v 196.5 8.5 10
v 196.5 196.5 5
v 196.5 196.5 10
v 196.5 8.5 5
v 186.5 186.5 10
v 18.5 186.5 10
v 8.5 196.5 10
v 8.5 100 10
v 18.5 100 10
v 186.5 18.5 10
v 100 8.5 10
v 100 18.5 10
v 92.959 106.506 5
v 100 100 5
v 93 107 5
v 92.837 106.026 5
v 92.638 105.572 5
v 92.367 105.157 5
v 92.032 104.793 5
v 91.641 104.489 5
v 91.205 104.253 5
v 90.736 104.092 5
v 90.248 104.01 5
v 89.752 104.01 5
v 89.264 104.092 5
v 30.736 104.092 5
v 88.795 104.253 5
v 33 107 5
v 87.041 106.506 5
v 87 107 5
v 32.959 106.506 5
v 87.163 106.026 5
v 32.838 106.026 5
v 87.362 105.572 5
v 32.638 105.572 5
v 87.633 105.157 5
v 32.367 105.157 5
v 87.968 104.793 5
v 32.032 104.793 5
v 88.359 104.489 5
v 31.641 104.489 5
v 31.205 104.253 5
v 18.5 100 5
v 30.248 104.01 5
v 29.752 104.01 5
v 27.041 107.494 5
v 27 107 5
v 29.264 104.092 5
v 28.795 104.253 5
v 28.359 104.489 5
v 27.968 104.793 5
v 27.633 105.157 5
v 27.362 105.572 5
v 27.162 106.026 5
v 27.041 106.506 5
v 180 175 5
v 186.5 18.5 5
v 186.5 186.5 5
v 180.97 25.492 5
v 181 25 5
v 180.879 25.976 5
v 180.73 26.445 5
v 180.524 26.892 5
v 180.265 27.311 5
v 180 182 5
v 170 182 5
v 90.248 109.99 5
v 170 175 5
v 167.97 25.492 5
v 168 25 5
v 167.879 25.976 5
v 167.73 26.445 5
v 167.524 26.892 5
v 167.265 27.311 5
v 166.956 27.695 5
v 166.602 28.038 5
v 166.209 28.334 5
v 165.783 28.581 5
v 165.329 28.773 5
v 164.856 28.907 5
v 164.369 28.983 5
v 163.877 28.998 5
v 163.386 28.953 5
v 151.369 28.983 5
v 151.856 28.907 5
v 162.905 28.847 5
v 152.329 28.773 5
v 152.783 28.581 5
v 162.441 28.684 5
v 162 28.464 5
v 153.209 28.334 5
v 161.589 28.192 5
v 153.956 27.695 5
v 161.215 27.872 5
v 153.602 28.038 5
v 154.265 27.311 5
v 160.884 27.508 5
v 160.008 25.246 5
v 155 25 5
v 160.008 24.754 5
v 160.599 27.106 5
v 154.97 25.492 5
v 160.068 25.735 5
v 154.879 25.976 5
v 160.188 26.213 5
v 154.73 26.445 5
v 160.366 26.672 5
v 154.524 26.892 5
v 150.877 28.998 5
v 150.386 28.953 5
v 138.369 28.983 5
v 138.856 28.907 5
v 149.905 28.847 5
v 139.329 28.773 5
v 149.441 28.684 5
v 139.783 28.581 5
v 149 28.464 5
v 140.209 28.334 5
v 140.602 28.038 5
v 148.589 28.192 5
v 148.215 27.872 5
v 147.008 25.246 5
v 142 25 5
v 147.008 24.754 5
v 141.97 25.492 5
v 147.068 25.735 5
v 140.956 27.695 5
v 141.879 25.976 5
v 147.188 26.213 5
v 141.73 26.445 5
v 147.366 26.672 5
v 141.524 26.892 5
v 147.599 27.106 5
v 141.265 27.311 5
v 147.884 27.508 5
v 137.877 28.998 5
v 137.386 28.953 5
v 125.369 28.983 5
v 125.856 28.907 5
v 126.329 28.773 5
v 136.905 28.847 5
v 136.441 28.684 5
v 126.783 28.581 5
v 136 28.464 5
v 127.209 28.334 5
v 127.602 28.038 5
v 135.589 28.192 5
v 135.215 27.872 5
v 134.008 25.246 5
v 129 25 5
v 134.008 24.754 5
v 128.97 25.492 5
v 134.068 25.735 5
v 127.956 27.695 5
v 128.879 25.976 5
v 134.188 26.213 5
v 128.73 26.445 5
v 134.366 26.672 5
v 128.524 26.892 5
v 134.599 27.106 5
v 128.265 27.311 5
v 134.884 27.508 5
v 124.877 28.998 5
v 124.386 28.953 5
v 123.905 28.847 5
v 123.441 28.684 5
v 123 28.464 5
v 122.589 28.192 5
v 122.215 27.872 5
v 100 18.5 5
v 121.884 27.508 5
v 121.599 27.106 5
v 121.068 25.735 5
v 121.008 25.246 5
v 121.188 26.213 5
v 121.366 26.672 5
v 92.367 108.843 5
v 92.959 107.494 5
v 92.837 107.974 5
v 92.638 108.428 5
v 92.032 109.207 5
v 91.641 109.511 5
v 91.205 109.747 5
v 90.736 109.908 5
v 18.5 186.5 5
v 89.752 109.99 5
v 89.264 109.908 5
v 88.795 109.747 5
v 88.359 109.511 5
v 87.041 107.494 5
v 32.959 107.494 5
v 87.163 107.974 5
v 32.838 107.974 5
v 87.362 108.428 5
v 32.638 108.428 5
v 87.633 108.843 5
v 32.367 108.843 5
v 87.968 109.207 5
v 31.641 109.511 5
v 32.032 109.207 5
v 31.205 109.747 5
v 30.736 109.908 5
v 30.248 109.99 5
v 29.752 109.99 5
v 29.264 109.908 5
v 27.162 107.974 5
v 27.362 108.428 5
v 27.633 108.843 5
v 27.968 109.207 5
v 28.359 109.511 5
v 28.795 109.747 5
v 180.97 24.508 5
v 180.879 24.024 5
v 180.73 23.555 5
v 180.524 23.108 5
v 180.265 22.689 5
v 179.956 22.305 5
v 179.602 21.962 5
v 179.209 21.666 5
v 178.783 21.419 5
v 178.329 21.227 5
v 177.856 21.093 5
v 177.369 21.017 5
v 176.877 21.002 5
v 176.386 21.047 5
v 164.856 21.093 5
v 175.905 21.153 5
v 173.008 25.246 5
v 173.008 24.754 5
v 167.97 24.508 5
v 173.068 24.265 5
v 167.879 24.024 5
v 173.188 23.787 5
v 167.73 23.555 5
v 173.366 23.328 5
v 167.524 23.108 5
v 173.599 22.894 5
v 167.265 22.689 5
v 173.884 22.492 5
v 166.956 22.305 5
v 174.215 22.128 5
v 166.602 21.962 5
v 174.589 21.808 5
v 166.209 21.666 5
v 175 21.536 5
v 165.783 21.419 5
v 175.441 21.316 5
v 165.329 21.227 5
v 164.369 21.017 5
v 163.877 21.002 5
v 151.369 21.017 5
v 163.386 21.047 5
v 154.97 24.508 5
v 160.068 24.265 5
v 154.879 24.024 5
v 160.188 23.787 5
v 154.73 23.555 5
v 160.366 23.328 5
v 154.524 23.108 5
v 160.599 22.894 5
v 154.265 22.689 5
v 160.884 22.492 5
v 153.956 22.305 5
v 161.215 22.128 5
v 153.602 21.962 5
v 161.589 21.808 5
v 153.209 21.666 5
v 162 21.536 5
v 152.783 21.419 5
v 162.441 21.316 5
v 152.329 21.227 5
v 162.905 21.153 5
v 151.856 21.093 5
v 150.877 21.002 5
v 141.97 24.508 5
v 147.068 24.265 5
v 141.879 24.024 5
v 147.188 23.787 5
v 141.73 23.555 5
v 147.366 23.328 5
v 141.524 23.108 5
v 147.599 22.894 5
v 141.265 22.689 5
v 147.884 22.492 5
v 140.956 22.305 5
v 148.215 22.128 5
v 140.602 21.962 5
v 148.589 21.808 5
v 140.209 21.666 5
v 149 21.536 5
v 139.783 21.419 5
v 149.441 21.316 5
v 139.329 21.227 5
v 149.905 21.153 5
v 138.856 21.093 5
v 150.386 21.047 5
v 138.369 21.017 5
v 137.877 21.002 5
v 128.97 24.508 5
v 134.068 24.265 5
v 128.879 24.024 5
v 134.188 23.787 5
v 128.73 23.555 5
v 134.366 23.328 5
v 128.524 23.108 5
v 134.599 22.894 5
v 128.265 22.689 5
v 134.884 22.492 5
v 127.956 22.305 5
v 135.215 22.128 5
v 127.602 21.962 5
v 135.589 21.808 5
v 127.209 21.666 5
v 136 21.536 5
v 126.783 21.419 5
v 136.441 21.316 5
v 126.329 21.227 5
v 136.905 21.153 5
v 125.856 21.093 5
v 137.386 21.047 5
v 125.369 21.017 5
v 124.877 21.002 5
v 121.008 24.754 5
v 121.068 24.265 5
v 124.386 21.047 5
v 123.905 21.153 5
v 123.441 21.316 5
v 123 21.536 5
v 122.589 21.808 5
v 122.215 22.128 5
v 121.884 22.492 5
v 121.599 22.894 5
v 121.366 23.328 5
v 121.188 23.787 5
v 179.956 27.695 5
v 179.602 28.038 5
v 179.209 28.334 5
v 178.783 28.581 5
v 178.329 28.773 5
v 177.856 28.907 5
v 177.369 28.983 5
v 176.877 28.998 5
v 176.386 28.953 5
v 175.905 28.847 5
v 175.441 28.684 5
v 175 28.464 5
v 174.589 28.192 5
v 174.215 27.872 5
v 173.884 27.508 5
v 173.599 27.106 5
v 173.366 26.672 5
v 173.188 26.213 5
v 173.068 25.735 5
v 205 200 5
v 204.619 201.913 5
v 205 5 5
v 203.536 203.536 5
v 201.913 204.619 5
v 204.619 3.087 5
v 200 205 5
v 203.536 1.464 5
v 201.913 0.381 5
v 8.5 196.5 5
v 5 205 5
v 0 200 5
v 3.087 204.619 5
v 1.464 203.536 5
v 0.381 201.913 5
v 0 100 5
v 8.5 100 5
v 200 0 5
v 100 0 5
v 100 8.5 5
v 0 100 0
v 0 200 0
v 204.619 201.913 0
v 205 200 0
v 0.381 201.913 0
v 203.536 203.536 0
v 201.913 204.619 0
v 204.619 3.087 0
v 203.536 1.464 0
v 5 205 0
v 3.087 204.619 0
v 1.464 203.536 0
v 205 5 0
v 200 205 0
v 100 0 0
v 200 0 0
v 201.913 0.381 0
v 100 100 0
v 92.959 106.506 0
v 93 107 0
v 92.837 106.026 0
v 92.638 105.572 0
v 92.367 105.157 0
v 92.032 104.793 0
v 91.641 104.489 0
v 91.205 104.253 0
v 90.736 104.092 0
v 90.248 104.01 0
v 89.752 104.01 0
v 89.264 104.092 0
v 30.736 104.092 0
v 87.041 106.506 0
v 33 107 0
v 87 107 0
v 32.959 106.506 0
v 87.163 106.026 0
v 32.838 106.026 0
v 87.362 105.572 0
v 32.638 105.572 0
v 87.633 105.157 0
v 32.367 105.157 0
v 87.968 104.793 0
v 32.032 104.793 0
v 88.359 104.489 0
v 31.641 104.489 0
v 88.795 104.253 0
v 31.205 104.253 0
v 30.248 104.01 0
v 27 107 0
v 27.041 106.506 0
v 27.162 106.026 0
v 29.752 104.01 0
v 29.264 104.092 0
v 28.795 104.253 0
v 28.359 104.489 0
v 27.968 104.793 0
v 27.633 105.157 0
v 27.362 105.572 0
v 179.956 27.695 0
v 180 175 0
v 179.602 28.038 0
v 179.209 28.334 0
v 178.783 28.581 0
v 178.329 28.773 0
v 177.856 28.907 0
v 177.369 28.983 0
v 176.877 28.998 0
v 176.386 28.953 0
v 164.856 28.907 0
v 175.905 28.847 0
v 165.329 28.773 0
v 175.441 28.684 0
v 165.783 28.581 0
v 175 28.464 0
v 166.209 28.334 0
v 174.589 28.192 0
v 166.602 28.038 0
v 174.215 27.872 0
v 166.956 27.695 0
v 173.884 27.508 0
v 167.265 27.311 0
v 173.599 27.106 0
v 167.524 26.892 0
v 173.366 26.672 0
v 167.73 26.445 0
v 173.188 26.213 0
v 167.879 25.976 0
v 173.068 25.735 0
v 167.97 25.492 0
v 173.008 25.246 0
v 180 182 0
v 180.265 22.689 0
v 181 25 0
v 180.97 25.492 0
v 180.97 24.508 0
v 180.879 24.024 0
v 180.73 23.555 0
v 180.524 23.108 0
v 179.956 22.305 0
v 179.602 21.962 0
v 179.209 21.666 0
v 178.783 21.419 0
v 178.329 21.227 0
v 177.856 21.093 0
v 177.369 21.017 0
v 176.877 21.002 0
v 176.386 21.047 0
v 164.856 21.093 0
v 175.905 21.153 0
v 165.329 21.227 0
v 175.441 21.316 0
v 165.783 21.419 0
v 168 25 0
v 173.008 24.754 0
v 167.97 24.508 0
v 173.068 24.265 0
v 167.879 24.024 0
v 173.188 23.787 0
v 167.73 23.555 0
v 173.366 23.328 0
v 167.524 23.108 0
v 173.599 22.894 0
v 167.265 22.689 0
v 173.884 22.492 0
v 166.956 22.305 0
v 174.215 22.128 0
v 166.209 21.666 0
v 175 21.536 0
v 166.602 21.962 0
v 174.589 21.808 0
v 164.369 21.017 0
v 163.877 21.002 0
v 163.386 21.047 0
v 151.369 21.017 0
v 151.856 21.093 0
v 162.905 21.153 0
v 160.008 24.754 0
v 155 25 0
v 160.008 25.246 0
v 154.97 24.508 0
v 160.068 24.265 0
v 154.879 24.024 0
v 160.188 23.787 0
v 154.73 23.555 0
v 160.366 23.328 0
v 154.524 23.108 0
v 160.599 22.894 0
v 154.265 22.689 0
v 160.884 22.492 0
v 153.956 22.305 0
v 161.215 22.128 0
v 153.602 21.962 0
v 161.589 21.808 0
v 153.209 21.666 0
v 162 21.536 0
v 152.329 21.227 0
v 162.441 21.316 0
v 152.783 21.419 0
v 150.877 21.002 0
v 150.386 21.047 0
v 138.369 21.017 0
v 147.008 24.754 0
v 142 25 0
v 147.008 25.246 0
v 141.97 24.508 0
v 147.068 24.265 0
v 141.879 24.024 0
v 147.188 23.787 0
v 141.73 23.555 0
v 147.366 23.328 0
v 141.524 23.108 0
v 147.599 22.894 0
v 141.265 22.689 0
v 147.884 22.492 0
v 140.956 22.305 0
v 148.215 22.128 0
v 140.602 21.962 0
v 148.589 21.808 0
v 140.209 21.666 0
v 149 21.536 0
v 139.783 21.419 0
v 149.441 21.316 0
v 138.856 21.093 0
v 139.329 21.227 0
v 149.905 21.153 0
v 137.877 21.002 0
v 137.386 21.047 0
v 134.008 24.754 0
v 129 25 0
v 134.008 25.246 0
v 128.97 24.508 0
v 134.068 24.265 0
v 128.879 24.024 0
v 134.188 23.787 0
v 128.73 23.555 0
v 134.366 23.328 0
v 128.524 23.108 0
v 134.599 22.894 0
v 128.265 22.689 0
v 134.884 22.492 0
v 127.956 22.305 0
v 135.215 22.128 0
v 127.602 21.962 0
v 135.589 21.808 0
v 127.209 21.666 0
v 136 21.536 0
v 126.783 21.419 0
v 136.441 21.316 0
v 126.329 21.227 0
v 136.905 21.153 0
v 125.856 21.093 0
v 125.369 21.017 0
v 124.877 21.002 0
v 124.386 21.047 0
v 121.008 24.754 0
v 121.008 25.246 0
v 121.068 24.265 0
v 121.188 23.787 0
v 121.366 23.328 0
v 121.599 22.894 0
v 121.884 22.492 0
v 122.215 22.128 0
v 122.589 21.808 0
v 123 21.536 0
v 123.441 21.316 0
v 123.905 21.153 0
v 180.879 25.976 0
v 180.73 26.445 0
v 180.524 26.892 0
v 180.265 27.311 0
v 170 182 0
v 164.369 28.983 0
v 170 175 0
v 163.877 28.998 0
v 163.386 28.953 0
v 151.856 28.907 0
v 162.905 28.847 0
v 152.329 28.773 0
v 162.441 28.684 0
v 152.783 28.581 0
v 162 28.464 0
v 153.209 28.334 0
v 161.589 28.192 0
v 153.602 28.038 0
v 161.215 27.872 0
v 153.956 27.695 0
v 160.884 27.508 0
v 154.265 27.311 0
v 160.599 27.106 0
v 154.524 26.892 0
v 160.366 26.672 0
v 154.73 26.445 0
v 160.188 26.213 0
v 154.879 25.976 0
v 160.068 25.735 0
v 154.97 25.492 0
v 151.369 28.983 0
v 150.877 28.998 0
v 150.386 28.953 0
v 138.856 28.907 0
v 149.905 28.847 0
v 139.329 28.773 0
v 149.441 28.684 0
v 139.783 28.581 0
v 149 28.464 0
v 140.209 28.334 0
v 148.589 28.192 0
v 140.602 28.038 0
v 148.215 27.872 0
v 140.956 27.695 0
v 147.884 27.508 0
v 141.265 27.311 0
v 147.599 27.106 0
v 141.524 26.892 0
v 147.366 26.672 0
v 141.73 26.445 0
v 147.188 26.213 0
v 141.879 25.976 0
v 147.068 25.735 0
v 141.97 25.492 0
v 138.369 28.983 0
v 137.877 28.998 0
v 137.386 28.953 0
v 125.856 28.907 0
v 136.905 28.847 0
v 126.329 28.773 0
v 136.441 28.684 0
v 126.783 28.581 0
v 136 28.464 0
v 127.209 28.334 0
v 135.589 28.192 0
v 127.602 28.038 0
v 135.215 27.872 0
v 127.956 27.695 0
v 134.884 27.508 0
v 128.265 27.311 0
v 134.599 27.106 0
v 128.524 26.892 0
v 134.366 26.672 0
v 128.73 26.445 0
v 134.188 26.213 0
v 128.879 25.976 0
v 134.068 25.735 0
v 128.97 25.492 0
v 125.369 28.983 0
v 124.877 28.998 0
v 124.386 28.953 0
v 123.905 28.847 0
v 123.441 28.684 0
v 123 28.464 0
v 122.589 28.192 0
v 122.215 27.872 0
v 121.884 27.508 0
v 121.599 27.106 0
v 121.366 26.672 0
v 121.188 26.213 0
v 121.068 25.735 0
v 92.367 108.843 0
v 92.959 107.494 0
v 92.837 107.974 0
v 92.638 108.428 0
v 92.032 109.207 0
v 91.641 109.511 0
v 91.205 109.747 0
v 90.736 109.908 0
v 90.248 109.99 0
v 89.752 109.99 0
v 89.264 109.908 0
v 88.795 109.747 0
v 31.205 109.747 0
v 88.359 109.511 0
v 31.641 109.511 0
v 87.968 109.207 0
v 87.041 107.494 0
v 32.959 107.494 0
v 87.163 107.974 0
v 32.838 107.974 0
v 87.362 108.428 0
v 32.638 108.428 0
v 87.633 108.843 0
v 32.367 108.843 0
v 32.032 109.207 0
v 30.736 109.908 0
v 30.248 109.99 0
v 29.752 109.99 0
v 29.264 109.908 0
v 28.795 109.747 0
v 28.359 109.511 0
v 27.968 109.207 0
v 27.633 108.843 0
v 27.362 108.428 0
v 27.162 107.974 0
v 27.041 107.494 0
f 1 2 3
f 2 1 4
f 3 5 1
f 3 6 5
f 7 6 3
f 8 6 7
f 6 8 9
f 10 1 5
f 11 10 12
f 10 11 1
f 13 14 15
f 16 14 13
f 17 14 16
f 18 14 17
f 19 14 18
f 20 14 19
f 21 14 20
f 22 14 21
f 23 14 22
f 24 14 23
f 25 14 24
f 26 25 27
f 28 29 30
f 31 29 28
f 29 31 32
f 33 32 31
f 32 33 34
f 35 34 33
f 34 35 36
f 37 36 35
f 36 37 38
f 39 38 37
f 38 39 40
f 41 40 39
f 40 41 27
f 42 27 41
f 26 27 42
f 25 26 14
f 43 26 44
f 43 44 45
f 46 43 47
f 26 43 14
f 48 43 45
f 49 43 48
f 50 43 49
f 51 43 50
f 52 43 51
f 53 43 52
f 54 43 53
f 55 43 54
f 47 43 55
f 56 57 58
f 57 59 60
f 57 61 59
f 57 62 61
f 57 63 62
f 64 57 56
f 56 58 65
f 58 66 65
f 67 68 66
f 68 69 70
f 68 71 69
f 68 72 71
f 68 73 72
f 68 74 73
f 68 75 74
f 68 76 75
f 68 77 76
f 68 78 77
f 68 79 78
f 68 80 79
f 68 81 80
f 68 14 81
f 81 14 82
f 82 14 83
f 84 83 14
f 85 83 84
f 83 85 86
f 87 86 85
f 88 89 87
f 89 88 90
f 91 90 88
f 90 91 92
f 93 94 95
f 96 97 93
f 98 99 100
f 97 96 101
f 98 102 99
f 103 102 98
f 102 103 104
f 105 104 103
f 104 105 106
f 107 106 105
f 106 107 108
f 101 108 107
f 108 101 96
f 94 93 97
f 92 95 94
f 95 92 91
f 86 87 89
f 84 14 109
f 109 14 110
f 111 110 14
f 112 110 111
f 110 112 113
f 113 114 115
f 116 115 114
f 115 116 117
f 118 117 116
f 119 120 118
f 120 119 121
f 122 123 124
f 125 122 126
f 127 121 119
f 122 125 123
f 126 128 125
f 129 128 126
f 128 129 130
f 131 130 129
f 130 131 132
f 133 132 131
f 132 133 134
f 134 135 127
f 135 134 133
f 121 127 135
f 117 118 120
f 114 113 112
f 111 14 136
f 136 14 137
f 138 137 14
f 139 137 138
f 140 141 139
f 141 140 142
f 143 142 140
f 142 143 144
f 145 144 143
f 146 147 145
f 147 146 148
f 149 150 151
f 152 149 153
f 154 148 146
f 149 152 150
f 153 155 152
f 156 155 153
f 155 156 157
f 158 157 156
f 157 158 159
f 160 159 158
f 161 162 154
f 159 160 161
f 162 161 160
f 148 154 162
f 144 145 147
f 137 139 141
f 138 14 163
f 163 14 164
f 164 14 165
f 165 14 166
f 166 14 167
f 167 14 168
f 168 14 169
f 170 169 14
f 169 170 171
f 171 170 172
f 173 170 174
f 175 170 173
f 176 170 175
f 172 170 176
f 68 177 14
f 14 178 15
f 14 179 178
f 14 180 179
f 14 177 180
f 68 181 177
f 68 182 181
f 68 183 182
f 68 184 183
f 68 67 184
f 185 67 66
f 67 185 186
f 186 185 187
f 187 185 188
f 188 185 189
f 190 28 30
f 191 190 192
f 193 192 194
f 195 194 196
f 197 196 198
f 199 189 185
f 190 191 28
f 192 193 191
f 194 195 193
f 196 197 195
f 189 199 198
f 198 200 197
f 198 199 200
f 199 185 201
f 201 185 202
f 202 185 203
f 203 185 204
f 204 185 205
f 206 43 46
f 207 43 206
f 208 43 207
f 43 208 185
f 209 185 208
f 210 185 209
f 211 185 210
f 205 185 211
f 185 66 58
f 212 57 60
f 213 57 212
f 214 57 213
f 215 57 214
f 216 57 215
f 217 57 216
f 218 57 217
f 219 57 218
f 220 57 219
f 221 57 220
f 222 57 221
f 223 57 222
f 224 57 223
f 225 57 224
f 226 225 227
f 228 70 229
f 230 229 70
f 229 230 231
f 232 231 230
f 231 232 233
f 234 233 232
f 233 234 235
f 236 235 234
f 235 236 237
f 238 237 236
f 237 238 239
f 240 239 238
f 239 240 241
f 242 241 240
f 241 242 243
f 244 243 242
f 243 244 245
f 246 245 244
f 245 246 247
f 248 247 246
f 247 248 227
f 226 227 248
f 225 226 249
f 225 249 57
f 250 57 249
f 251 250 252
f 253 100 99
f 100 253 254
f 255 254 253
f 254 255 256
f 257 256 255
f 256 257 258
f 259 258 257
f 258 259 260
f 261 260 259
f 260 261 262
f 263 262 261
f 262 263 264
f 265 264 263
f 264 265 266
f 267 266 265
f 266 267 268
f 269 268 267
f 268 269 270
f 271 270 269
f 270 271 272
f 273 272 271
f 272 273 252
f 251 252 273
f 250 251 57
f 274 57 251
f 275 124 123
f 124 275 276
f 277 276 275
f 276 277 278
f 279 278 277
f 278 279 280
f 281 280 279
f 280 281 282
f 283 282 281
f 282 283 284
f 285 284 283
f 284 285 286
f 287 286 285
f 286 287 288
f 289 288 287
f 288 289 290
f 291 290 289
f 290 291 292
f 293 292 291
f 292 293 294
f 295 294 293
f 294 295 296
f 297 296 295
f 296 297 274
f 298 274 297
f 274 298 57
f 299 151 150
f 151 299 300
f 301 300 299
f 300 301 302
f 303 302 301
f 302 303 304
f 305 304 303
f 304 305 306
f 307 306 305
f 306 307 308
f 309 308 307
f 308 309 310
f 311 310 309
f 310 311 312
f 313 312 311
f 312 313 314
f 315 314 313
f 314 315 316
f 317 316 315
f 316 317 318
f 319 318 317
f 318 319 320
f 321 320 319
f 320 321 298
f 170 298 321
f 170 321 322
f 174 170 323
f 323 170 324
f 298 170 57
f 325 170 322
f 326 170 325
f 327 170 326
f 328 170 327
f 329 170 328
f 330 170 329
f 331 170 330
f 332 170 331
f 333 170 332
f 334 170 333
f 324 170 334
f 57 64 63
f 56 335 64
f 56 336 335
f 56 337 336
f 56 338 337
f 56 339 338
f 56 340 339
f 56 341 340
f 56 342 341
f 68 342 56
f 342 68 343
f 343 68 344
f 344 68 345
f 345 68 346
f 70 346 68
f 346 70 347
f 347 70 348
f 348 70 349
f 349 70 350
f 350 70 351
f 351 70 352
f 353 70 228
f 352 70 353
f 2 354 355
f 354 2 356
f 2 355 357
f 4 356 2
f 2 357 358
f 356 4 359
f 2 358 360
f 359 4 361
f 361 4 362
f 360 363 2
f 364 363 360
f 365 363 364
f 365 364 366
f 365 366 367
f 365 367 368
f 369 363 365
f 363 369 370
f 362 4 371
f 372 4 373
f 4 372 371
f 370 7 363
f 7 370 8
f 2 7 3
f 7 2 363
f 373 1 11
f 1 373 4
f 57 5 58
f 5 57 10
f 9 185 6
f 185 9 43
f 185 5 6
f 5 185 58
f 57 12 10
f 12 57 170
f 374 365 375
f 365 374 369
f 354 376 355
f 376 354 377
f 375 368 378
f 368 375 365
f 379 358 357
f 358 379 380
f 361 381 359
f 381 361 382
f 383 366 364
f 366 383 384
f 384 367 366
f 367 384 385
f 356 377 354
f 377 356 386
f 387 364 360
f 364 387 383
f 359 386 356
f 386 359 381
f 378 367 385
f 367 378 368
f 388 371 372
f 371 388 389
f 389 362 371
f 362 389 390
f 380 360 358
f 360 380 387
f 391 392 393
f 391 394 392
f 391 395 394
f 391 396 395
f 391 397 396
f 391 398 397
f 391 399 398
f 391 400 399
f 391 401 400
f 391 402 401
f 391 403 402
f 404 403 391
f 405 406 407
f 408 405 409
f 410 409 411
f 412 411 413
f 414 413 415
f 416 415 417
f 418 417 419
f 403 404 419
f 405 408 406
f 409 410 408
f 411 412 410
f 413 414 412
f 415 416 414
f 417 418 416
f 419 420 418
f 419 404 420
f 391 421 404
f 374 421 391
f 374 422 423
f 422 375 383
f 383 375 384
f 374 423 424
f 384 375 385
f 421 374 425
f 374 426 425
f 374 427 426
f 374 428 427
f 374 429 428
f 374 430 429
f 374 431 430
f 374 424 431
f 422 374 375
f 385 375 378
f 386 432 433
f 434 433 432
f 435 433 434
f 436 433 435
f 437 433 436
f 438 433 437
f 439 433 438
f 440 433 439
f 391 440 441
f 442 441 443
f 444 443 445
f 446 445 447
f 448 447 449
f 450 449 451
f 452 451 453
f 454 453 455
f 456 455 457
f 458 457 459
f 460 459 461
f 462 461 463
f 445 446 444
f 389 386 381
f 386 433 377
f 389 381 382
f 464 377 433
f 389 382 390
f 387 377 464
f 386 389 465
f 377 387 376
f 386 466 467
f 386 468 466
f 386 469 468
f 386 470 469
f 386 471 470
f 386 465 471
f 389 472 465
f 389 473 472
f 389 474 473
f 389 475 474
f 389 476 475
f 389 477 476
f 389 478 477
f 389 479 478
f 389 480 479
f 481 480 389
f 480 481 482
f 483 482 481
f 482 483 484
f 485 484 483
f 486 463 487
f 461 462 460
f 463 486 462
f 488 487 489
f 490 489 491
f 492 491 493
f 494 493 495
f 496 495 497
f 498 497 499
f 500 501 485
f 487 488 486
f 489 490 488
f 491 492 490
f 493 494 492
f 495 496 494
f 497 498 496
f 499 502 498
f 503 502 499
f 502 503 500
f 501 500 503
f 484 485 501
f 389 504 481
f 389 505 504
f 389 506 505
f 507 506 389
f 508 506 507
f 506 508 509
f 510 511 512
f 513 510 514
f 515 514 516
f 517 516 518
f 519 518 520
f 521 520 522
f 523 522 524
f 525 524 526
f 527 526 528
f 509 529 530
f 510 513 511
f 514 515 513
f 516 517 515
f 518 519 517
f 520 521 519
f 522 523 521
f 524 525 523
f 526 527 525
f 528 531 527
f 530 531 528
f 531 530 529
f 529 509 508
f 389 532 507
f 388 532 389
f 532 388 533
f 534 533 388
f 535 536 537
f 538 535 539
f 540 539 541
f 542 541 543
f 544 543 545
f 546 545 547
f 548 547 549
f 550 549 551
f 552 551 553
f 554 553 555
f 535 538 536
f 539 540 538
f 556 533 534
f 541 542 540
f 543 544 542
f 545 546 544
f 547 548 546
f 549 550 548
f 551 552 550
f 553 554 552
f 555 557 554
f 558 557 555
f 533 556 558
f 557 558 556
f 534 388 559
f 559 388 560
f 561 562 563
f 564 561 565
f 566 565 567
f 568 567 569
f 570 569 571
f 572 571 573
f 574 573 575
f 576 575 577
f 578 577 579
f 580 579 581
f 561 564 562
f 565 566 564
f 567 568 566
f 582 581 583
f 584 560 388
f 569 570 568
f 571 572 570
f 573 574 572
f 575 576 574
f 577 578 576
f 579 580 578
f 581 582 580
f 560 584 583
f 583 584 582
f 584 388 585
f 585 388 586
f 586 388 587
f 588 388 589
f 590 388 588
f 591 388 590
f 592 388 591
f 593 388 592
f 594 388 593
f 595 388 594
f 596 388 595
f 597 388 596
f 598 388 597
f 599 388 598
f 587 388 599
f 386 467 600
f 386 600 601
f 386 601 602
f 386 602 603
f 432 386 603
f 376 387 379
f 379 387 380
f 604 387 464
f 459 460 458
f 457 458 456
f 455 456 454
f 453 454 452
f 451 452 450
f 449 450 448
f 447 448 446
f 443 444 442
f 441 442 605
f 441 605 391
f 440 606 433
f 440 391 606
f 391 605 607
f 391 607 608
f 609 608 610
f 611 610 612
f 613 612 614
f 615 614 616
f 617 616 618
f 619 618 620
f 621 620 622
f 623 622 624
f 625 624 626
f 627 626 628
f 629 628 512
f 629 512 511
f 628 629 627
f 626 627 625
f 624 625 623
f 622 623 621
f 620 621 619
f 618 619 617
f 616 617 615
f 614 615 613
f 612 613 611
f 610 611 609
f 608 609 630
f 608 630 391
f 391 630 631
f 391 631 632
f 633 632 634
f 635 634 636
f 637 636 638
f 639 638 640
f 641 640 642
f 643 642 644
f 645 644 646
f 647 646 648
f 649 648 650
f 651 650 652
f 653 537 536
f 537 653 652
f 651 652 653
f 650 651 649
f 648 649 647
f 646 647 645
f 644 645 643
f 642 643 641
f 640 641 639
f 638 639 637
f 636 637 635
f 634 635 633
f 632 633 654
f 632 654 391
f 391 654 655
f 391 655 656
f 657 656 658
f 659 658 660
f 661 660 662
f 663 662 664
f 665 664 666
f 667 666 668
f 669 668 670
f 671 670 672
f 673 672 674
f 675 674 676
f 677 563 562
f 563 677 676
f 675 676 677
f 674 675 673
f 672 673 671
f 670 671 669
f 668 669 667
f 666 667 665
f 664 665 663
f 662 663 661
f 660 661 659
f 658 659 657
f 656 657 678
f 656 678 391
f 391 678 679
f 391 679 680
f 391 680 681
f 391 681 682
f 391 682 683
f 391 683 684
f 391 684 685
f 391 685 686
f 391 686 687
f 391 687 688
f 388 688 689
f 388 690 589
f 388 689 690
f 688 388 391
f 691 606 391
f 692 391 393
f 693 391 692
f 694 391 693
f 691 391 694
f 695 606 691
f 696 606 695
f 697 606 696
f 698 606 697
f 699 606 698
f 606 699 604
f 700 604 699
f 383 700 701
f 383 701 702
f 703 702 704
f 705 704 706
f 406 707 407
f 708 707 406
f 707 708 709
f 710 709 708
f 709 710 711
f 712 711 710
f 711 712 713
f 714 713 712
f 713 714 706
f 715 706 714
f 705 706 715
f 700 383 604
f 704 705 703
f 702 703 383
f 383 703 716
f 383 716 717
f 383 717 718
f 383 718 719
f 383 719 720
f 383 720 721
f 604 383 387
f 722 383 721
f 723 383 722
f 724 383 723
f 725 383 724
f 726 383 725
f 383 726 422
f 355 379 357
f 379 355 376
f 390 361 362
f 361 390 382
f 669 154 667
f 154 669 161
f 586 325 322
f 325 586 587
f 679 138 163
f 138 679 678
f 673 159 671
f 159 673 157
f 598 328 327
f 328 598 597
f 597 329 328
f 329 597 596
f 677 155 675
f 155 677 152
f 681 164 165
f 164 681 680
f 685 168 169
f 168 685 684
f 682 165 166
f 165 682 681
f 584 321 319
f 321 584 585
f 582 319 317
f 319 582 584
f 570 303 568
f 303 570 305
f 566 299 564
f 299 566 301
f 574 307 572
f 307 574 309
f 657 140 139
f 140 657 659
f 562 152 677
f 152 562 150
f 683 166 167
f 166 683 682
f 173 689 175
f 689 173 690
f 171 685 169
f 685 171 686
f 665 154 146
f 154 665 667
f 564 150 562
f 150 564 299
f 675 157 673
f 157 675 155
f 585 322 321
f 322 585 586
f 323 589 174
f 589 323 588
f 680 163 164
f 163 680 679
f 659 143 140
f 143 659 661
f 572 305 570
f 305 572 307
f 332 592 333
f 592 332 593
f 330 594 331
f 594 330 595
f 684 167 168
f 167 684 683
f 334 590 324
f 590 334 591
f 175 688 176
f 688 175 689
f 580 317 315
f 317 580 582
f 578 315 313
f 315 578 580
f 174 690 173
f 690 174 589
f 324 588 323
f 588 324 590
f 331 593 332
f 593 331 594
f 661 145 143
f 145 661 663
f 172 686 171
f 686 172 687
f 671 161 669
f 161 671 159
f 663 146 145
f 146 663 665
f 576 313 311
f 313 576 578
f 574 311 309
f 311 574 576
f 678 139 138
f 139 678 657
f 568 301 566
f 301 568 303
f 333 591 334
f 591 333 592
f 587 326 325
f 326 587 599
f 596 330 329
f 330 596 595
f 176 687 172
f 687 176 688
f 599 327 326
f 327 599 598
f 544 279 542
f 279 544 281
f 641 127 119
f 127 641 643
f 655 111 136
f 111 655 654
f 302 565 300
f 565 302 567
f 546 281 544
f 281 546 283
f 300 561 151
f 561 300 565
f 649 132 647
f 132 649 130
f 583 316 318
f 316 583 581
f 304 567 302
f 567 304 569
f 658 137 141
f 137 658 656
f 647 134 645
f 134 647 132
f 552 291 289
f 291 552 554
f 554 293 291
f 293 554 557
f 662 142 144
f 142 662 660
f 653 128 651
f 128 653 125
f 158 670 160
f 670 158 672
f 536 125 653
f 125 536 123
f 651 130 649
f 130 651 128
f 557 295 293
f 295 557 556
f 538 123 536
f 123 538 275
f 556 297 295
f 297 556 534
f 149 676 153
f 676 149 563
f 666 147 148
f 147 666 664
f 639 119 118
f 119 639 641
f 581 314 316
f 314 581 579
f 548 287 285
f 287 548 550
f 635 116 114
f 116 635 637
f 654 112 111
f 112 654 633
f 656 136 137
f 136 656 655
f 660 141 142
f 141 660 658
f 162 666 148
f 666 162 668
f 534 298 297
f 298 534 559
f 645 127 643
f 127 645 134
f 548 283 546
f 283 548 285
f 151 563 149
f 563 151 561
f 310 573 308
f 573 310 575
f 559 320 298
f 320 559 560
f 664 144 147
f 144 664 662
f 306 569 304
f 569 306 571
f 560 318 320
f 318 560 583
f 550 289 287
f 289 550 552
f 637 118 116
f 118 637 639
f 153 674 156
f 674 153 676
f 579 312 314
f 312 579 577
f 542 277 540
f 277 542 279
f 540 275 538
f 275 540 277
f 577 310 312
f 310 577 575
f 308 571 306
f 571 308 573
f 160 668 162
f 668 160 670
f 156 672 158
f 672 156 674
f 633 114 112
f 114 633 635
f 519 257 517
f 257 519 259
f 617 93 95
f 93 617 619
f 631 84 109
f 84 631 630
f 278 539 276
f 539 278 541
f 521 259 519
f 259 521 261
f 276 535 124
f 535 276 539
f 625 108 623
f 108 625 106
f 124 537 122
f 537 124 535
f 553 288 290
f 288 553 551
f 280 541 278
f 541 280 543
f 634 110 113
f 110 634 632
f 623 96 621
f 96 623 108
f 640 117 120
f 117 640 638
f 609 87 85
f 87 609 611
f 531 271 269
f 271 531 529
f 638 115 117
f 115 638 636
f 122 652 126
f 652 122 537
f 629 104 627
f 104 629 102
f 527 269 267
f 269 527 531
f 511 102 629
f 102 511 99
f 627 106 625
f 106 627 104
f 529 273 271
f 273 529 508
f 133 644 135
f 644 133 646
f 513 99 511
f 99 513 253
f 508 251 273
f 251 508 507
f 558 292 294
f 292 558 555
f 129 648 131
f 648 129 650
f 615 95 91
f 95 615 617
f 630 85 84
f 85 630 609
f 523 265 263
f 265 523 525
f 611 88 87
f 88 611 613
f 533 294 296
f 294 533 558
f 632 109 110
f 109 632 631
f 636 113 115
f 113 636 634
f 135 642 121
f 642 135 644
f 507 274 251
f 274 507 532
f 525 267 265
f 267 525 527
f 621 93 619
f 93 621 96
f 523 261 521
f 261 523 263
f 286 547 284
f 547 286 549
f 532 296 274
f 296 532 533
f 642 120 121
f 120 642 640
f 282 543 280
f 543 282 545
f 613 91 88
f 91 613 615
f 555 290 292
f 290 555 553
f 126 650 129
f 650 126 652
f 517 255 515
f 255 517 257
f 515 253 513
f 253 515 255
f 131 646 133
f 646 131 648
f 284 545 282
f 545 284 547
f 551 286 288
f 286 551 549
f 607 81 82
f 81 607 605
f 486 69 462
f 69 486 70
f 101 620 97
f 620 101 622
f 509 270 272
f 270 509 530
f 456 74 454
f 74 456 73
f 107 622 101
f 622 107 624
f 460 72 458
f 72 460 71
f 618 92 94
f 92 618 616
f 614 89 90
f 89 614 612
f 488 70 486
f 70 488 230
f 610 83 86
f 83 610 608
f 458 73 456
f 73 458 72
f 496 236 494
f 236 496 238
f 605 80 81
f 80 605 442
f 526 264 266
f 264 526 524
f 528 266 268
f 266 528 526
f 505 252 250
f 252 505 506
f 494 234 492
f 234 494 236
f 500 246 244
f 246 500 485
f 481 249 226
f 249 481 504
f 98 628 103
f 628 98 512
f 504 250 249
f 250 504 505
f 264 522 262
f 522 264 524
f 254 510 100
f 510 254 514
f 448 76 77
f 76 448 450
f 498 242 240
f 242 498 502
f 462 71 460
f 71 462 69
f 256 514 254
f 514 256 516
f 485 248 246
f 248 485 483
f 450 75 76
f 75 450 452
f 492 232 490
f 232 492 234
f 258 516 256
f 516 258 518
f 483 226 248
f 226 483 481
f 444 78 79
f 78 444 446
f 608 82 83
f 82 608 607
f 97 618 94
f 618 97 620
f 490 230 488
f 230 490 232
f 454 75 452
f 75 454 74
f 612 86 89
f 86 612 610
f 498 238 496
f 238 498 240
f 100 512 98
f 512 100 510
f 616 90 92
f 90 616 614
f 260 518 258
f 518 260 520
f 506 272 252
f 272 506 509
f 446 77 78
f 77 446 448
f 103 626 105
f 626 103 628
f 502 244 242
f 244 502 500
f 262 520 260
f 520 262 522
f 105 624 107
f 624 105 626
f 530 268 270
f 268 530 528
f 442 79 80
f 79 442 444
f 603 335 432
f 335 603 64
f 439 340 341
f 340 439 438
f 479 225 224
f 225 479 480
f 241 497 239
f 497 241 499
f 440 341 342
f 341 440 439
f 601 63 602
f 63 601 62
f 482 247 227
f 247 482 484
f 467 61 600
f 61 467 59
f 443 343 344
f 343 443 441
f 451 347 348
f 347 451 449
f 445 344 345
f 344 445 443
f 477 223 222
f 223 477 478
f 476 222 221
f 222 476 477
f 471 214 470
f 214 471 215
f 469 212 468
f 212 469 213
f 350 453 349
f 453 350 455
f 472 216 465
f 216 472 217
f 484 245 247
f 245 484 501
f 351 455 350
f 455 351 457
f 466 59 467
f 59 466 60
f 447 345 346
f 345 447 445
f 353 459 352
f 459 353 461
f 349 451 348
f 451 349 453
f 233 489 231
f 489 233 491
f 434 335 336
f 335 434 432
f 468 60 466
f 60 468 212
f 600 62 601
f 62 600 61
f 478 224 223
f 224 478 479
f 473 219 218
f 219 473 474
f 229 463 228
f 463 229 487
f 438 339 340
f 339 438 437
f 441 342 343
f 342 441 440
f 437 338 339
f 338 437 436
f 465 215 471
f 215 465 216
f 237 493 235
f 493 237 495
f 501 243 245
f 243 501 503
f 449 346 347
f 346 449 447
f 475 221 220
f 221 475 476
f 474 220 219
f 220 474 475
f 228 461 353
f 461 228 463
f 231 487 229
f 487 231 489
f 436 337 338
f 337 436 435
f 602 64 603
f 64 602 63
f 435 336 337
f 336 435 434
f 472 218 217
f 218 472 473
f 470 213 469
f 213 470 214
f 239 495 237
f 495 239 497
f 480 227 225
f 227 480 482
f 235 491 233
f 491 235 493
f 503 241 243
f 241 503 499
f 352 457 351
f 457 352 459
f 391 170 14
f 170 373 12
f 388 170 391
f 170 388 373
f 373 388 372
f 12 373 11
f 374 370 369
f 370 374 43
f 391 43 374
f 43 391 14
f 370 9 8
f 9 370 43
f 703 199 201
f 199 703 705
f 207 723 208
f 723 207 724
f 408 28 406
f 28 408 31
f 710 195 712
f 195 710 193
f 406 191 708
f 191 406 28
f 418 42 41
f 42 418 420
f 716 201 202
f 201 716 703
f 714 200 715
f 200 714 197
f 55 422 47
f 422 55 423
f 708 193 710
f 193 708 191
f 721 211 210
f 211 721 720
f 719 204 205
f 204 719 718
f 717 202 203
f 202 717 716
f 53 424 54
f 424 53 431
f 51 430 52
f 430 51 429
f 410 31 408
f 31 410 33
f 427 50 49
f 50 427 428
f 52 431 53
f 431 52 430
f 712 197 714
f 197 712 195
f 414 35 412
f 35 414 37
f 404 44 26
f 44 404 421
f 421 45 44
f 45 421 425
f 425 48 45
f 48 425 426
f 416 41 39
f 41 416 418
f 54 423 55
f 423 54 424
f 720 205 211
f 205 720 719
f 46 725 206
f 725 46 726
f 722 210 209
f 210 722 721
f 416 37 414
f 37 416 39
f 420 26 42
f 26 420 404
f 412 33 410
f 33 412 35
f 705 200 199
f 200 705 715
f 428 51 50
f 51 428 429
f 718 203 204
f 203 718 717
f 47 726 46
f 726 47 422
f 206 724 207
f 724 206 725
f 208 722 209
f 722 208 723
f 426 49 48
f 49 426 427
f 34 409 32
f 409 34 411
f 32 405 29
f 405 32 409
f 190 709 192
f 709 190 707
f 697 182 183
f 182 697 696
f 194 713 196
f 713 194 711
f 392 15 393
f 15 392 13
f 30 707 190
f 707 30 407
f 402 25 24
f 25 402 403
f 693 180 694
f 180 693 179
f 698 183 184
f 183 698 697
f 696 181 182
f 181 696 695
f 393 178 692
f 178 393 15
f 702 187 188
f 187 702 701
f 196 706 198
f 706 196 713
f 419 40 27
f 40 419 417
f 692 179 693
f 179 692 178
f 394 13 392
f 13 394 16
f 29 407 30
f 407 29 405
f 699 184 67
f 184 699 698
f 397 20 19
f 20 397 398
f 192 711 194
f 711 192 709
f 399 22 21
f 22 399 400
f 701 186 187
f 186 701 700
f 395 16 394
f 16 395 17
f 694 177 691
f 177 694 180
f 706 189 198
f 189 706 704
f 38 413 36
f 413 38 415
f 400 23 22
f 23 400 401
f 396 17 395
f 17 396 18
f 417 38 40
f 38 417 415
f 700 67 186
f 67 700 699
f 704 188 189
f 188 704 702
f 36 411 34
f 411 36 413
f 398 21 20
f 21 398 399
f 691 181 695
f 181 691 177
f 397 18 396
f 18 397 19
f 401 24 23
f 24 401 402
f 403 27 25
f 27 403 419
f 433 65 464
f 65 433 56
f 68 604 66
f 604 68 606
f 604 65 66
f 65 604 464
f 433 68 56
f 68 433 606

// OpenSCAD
difference()
{
    main();
    pipes();
    adapter();
    split();
}

// main
width = 200;
radius = 5;
// addon   
border = 12;

//////////
// Case //
//////////
module main() {
    translate ([5, 5, 0]) {
        union()
        {
            main_positiv();
            main_addon();
        }
    }
}

module main_addon() {
    difference()
    {
        main_addon_positiv();
        main_addon_negative();
    }
}

module main_addon_positiv() {
    t = (border-radius) / 2;
    w = width - border;
    
    translate ([t, t, 5]) {
        cube([w, w, 5]);
    }
}

module main_addon_negative() {
    l = 10;
    
    t = ((border-radius) / 2) + l;
    w = width - border - 2*l;
    
    translate ([t, t, 5]) {
        color("red"){
            cube([w, w, 5]);
        }
    }
}

module main_positiv() {
    w = width - radius;
    
    minkowski() {
        cube([w, w, 1]);
        cylinder(r=radius,h=4);
    }
}


// Pipe //
module pipes() {
    count = 5;
    pipe_width = 8;
    space = 5;
    
    translate([125,25,0]) {
        union() {
            for (i = [0:4]) {
                translate([((pipe_width + space) * i), 0, 0]) {
                    pipe();
                }
            }
        }
    }
}

module pipe() {
    cylinder(r=4, h=10, $fa=0.5, $fs=0.5);
}

// Adapter //
module adapter() {
    height = 10;
    length = 10;
    width = 7;
                    
    translate([170, 175, 0]) {
        cube([length, width, height]);  
    }
}

module split() {          
    cube([100, 100, 10]);  
           
    translate([30, 107, 0]) {
       cylinder(r=3, h=10, $fa=0.5, $fs=0.5);  
    }
                 
    translate([90, 107, 0]) {
       cylinder(r=3, h=10, $fa=0.5, $fs=0.5); 
    }
}
